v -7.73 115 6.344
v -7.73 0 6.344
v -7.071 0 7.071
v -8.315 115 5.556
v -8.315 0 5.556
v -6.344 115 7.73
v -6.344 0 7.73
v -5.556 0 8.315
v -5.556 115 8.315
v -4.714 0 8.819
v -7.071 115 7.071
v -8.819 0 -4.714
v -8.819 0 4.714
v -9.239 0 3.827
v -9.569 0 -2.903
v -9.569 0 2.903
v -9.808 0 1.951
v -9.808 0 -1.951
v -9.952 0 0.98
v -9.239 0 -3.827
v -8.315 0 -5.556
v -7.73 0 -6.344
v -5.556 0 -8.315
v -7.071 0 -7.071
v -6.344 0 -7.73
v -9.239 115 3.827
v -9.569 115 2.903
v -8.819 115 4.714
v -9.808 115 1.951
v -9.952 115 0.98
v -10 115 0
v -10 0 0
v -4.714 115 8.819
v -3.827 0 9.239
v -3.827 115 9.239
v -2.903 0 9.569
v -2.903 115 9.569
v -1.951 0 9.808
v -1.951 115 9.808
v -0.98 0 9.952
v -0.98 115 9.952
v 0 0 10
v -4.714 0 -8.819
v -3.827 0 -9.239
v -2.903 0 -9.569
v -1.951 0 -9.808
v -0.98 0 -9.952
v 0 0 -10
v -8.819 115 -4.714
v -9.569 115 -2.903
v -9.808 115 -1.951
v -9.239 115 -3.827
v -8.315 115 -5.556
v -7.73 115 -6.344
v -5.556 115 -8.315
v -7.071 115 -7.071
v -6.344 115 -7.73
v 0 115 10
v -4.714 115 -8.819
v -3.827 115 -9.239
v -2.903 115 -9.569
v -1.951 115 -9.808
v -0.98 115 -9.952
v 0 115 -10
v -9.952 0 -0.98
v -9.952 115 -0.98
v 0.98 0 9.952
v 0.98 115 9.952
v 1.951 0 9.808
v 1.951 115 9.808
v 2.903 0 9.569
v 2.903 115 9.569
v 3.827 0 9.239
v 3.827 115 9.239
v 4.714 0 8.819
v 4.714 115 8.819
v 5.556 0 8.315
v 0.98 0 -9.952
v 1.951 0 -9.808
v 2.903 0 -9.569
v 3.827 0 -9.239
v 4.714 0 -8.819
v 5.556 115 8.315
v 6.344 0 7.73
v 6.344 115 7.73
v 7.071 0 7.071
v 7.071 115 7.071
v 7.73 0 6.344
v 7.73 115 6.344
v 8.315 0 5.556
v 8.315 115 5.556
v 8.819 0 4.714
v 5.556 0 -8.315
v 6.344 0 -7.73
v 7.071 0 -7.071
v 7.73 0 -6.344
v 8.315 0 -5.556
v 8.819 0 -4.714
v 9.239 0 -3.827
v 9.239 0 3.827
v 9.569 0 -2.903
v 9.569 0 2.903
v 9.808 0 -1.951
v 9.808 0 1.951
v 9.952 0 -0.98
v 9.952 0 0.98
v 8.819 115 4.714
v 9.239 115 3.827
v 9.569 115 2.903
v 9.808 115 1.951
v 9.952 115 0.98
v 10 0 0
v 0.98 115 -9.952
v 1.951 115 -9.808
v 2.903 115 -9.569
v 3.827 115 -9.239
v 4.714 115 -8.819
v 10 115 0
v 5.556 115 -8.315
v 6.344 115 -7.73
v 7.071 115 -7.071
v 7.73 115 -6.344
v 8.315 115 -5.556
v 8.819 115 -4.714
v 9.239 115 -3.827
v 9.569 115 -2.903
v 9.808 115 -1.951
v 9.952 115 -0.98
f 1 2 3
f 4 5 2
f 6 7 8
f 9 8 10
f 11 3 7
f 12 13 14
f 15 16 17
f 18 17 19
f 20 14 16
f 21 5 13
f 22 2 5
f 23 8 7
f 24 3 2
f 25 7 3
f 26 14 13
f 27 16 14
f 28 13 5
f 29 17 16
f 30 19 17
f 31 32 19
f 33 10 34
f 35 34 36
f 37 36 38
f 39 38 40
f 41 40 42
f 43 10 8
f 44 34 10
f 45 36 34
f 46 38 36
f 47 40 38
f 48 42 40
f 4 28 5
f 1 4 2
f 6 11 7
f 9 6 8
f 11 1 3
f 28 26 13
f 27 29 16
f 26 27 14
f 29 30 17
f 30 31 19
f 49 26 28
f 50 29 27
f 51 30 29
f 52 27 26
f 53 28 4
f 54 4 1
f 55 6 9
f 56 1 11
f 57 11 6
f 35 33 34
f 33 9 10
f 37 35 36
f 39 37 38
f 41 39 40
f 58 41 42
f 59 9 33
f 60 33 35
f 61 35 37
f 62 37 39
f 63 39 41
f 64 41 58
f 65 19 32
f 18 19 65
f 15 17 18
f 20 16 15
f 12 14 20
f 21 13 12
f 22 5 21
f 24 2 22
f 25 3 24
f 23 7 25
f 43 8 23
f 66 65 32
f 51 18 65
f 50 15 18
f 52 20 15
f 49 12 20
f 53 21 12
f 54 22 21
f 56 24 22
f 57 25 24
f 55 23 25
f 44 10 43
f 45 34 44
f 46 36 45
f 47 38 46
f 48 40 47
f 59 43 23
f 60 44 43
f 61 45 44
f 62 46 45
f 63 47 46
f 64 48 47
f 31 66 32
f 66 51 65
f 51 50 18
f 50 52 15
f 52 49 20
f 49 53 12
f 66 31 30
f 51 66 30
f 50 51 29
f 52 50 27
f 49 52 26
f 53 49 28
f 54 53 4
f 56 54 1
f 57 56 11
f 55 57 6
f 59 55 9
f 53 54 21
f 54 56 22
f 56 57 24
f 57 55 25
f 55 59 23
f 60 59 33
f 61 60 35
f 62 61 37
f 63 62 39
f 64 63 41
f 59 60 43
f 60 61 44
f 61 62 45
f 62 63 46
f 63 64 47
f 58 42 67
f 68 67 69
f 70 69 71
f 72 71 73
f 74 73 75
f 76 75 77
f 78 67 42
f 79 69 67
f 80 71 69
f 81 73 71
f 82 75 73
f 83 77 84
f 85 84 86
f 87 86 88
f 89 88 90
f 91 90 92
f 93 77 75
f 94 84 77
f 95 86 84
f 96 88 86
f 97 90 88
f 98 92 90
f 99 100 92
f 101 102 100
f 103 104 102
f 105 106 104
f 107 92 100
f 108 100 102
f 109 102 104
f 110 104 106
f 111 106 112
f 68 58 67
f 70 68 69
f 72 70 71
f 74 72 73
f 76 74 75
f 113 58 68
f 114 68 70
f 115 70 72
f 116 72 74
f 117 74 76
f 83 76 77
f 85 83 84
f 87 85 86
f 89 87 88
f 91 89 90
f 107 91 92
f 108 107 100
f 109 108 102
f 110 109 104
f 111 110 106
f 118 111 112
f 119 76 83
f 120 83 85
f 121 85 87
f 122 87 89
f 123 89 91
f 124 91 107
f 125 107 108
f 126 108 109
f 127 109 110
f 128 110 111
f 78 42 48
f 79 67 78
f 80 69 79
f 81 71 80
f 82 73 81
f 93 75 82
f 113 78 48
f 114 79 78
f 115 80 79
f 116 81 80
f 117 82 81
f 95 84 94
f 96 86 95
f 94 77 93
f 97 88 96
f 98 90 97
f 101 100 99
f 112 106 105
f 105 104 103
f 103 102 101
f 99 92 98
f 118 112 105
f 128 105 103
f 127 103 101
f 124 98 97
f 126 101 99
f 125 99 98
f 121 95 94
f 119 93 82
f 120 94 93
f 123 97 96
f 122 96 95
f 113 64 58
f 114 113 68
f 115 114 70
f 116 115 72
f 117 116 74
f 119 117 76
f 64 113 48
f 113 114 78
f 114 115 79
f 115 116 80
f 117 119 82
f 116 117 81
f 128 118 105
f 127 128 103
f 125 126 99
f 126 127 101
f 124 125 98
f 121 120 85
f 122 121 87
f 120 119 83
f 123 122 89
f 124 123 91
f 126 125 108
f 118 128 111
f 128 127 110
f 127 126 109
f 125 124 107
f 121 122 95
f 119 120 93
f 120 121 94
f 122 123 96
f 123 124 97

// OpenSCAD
// Large German marker
// Geometry follows the holder clearance profile. Its dimensions describe the pocket used in the source design. Physical tool dimensions and fit have yet to be measured.
// Units: mm
$fn = 64;
union() {
    translate([0, 0, 0]) rotate([-90, 0, 0])
        cylinder(h=115, r1=10, r2=10, $fn=64);
}
